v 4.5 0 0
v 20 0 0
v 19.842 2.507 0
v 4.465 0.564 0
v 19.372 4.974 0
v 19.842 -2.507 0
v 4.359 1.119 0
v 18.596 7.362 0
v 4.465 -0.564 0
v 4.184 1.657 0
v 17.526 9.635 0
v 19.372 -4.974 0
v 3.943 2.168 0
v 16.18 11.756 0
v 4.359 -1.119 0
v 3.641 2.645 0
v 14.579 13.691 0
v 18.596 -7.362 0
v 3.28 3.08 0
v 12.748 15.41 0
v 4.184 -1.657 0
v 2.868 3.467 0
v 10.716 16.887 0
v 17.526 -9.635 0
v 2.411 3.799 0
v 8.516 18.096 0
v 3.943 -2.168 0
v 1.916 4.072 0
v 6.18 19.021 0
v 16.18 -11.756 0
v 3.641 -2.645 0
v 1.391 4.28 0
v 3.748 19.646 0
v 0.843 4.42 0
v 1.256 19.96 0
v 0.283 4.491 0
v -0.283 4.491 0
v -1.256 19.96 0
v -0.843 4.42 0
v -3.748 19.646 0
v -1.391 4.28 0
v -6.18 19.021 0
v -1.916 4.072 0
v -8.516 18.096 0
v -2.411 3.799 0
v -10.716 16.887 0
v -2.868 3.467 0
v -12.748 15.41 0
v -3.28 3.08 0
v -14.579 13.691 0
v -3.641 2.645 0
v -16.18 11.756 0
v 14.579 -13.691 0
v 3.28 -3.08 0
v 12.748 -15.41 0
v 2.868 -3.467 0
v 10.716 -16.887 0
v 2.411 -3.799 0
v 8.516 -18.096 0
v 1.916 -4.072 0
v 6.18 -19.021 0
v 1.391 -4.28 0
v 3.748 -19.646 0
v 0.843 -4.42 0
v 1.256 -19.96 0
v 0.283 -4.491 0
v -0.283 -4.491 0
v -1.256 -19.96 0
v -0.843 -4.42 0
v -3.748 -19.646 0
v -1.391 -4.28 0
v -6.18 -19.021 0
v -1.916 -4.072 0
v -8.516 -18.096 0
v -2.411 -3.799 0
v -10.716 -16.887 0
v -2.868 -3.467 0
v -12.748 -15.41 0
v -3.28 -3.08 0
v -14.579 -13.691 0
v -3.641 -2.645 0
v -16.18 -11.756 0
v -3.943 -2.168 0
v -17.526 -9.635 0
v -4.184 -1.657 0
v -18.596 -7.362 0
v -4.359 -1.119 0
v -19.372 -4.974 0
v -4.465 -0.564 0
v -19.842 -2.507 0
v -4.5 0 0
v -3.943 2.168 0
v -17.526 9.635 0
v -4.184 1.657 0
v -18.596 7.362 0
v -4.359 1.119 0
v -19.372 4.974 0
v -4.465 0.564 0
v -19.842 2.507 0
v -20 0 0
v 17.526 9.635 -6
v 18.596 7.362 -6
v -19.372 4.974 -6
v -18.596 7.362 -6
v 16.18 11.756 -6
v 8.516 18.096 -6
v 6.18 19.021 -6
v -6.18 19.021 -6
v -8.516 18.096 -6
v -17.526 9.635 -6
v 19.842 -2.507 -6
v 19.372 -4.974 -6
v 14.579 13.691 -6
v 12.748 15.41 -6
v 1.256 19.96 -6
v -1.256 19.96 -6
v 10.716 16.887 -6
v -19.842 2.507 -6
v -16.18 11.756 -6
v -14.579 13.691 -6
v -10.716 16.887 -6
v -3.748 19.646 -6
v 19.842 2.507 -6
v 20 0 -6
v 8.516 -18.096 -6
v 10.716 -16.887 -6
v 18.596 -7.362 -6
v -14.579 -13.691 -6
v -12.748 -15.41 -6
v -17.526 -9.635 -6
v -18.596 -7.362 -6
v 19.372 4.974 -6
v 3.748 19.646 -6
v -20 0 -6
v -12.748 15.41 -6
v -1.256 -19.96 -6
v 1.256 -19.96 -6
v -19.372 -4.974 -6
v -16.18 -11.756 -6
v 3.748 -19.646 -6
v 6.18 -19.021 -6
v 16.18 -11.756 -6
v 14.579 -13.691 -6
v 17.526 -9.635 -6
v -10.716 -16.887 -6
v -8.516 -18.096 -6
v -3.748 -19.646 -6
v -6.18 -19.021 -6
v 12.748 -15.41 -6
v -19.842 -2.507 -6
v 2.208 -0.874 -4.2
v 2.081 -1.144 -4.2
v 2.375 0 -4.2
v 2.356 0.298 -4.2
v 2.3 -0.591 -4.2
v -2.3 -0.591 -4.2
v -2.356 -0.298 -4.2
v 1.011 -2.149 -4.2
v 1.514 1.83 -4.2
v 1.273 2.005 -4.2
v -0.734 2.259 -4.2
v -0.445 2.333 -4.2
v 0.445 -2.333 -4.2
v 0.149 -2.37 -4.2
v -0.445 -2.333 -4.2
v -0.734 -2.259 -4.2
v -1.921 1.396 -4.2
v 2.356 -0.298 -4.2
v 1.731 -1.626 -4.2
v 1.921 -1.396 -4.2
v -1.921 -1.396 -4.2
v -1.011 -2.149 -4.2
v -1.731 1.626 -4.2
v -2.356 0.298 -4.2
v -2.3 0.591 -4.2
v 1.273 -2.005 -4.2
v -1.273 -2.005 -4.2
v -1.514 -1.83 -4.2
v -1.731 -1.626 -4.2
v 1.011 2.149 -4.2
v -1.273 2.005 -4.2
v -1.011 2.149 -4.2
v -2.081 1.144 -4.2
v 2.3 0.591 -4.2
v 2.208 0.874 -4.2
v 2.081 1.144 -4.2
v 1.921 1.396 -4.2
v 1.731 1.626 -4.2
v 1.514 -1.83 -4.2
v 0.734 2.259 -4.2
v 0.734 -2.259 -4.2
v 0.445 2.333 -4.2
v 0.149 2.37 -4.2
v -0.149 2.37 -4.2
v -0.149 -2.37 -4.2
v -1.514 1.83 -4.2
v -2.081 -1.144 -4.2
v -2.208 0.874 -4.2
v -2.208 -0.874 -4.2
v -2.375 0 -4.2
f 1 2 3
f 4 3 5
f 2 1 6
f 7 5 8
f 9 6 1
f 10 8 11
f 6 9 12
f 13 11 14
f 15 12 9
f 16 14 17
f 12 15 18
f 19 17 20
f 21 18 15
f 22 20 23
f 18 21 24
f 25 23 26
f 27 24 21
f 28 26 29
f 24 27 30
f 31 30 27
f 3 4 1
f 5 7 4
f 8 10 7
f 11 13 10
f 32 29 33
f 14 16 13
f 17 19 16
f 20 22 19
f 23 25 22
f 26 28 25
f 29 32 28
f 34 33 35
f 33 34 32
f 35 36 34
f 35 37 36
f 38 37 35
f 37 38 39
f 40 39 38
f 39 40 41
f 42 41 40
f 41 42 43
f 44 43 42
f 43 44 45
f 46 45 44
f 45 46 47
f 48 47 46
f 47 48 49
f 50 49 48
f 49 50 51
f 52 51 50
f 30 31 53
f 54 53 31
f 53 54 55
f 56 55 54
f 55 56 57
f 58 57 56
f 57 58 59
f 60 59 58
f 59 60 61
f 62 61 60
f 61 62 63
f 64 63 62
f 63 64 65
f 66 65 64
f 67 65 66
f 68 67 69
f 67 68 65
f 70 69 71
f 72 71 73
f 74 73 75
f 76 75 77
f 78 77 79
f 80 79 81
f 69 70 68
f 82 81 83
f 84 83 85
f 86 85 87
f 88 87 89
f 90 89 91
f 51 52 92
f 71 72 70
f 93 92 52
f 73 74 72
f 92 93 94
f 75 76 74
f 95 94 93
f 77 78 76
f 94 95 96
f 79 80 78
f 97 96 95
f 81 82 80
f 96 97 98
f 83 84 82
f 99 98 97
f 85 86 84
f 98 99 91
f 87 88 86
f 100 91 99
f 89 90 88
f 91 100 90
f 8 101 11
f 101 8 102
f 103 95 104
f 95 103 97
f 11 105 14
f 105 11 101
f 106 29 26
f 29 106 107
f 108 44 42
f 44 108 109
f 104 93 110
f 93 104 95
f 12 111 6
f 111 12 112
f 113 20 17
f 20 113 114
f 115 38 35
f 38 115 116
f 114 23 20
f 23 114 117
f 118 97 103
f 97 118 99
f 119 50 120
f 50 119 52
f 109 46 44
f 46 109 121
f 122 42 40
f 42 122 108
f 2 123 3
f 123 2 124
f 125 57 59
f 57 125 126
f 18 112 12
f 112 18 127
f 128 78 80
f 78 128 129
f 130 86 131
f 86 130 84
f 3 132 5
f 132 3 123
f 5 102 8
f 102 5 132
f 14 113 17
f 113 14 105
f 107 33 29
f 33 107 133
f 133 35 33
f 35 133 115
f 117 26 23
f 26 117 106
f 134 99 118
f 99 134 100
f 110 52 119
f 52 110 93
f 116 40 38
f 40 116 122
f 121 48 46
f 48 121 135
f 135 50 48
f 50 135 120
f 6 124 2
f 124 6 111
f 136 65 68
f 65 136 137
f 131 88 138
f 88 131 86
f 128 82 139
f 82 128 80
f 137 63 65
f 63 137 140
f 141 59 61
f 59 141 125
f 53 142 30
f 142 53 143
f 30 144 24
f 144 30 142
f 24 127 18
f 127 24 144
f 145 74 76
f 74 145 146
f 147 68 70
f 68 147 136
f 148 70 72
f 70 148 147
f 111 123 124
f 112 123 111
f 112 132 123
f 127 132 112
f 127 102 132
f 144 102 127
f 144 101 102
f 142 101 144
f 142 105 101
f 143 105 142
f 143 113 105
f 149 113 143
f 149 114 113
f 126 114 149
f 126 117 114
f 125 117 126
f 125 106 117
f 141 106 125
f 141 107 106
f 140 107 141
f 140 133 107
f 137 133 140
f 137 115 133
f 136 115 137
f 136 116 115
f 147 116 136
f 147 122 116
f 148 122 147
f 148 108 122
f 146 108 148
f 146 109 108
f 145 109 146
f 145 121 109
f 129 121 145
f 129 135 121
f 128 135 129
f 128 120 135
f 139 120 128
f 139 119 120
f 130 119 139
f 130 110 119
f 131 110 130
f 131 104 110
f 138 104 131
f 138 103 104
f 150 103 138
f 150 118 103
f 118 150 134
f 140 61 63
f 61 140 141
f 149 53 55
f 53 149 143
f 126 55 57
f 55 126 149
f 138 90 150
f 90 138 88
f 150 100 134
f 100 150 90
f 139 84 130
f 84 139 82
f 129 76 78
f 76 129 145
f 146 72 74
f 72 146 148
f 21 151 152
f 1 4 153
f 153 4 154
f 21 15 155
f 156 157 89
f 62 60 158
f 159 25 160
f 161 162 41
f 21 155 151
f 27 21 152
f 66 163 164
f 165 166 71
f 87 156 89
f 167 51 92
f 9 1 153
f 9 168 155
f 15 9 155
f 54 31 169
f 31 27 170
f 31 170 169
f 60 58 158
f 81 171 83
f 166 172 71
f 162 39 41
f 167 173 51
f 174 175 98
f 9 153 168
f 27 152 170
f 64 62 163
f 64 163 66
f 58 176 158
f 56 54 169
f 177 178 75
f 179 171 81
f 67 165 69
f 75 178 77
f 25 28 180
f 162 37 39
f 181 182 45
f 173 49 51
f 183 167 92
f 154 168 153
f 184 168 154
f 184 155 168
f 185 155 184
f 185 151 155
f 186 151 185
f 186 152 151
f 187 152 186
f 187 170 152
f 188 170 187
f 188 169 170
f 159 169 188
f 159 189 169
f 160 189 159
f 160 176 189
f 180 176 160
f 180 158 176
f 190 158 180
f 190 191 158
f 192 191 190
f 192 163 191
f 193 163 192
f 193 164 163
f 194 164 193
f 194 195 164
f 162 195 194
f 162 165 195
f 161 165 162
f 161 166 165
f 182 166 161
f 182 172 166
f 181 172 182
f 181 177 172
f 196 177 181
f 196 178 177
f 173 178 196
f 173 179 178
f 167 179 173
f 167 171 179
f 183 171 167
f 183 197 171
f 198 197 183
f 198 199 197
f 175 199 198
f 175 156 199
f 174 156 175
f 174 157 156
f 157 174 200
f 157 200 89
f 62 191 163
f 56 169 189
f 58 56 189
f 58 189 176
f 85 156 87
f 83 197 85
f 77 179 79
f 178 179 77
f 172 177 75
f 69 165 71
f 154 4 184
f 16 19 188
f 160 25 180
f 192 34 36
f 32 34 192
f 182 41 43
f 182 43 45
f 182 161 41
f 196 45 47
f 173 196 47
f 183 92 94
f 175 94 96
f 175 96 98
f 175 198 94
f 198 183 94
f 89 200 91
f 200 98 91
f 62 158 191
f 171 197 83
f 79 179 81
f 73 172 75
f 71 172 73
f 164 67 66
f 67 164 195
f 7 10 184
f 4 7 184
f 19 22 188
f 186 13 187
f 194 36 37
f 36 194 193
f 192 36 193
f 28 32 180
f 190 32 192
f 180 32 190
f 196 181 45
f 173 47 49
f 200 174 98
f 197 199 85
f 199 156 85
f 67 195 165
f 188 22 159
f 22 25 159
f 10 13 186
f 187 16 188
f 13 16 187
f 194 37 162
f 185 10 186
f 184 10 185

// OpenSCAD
$fn = 50;


difference() {
	union() {
		translate(v = [0, 0, -3.0000000000]) {
			cylinder(h = 3, r = 10.0000000000);
		}
		translate(v = [0, 0, -6.0000000000]) {
			cylinder(h = 6, r = 20.0000000000);
		}
	}
	union() {
		translate(v = [0, 0, 0]) {
			rotate(a = [0, 0, 0]) {
				difference() {
					union() {
						#translate(v = [0, 0, -3.0000000000]) {
							cylinder(h = 3, r = 2.2500000000);
						}
						#translate(v = [0, 0, -4.2000000000]) {
							cylinder(h = 4.2000000000, r = 10.0000000000, r1 = 2.3750000000, r2 = 4.5000000000);
						}
						#translate(v = [0, 0, -3.0000000000]) {
							cylinder(h = 3, r = 2.3750000000);
						}
						#translate(v = [0, 0, -3.0000000000]) {
							cylinder(h = 3, r = 2.2500000000);
						}
					}
					union();
				}
			}
		}
	}
}
